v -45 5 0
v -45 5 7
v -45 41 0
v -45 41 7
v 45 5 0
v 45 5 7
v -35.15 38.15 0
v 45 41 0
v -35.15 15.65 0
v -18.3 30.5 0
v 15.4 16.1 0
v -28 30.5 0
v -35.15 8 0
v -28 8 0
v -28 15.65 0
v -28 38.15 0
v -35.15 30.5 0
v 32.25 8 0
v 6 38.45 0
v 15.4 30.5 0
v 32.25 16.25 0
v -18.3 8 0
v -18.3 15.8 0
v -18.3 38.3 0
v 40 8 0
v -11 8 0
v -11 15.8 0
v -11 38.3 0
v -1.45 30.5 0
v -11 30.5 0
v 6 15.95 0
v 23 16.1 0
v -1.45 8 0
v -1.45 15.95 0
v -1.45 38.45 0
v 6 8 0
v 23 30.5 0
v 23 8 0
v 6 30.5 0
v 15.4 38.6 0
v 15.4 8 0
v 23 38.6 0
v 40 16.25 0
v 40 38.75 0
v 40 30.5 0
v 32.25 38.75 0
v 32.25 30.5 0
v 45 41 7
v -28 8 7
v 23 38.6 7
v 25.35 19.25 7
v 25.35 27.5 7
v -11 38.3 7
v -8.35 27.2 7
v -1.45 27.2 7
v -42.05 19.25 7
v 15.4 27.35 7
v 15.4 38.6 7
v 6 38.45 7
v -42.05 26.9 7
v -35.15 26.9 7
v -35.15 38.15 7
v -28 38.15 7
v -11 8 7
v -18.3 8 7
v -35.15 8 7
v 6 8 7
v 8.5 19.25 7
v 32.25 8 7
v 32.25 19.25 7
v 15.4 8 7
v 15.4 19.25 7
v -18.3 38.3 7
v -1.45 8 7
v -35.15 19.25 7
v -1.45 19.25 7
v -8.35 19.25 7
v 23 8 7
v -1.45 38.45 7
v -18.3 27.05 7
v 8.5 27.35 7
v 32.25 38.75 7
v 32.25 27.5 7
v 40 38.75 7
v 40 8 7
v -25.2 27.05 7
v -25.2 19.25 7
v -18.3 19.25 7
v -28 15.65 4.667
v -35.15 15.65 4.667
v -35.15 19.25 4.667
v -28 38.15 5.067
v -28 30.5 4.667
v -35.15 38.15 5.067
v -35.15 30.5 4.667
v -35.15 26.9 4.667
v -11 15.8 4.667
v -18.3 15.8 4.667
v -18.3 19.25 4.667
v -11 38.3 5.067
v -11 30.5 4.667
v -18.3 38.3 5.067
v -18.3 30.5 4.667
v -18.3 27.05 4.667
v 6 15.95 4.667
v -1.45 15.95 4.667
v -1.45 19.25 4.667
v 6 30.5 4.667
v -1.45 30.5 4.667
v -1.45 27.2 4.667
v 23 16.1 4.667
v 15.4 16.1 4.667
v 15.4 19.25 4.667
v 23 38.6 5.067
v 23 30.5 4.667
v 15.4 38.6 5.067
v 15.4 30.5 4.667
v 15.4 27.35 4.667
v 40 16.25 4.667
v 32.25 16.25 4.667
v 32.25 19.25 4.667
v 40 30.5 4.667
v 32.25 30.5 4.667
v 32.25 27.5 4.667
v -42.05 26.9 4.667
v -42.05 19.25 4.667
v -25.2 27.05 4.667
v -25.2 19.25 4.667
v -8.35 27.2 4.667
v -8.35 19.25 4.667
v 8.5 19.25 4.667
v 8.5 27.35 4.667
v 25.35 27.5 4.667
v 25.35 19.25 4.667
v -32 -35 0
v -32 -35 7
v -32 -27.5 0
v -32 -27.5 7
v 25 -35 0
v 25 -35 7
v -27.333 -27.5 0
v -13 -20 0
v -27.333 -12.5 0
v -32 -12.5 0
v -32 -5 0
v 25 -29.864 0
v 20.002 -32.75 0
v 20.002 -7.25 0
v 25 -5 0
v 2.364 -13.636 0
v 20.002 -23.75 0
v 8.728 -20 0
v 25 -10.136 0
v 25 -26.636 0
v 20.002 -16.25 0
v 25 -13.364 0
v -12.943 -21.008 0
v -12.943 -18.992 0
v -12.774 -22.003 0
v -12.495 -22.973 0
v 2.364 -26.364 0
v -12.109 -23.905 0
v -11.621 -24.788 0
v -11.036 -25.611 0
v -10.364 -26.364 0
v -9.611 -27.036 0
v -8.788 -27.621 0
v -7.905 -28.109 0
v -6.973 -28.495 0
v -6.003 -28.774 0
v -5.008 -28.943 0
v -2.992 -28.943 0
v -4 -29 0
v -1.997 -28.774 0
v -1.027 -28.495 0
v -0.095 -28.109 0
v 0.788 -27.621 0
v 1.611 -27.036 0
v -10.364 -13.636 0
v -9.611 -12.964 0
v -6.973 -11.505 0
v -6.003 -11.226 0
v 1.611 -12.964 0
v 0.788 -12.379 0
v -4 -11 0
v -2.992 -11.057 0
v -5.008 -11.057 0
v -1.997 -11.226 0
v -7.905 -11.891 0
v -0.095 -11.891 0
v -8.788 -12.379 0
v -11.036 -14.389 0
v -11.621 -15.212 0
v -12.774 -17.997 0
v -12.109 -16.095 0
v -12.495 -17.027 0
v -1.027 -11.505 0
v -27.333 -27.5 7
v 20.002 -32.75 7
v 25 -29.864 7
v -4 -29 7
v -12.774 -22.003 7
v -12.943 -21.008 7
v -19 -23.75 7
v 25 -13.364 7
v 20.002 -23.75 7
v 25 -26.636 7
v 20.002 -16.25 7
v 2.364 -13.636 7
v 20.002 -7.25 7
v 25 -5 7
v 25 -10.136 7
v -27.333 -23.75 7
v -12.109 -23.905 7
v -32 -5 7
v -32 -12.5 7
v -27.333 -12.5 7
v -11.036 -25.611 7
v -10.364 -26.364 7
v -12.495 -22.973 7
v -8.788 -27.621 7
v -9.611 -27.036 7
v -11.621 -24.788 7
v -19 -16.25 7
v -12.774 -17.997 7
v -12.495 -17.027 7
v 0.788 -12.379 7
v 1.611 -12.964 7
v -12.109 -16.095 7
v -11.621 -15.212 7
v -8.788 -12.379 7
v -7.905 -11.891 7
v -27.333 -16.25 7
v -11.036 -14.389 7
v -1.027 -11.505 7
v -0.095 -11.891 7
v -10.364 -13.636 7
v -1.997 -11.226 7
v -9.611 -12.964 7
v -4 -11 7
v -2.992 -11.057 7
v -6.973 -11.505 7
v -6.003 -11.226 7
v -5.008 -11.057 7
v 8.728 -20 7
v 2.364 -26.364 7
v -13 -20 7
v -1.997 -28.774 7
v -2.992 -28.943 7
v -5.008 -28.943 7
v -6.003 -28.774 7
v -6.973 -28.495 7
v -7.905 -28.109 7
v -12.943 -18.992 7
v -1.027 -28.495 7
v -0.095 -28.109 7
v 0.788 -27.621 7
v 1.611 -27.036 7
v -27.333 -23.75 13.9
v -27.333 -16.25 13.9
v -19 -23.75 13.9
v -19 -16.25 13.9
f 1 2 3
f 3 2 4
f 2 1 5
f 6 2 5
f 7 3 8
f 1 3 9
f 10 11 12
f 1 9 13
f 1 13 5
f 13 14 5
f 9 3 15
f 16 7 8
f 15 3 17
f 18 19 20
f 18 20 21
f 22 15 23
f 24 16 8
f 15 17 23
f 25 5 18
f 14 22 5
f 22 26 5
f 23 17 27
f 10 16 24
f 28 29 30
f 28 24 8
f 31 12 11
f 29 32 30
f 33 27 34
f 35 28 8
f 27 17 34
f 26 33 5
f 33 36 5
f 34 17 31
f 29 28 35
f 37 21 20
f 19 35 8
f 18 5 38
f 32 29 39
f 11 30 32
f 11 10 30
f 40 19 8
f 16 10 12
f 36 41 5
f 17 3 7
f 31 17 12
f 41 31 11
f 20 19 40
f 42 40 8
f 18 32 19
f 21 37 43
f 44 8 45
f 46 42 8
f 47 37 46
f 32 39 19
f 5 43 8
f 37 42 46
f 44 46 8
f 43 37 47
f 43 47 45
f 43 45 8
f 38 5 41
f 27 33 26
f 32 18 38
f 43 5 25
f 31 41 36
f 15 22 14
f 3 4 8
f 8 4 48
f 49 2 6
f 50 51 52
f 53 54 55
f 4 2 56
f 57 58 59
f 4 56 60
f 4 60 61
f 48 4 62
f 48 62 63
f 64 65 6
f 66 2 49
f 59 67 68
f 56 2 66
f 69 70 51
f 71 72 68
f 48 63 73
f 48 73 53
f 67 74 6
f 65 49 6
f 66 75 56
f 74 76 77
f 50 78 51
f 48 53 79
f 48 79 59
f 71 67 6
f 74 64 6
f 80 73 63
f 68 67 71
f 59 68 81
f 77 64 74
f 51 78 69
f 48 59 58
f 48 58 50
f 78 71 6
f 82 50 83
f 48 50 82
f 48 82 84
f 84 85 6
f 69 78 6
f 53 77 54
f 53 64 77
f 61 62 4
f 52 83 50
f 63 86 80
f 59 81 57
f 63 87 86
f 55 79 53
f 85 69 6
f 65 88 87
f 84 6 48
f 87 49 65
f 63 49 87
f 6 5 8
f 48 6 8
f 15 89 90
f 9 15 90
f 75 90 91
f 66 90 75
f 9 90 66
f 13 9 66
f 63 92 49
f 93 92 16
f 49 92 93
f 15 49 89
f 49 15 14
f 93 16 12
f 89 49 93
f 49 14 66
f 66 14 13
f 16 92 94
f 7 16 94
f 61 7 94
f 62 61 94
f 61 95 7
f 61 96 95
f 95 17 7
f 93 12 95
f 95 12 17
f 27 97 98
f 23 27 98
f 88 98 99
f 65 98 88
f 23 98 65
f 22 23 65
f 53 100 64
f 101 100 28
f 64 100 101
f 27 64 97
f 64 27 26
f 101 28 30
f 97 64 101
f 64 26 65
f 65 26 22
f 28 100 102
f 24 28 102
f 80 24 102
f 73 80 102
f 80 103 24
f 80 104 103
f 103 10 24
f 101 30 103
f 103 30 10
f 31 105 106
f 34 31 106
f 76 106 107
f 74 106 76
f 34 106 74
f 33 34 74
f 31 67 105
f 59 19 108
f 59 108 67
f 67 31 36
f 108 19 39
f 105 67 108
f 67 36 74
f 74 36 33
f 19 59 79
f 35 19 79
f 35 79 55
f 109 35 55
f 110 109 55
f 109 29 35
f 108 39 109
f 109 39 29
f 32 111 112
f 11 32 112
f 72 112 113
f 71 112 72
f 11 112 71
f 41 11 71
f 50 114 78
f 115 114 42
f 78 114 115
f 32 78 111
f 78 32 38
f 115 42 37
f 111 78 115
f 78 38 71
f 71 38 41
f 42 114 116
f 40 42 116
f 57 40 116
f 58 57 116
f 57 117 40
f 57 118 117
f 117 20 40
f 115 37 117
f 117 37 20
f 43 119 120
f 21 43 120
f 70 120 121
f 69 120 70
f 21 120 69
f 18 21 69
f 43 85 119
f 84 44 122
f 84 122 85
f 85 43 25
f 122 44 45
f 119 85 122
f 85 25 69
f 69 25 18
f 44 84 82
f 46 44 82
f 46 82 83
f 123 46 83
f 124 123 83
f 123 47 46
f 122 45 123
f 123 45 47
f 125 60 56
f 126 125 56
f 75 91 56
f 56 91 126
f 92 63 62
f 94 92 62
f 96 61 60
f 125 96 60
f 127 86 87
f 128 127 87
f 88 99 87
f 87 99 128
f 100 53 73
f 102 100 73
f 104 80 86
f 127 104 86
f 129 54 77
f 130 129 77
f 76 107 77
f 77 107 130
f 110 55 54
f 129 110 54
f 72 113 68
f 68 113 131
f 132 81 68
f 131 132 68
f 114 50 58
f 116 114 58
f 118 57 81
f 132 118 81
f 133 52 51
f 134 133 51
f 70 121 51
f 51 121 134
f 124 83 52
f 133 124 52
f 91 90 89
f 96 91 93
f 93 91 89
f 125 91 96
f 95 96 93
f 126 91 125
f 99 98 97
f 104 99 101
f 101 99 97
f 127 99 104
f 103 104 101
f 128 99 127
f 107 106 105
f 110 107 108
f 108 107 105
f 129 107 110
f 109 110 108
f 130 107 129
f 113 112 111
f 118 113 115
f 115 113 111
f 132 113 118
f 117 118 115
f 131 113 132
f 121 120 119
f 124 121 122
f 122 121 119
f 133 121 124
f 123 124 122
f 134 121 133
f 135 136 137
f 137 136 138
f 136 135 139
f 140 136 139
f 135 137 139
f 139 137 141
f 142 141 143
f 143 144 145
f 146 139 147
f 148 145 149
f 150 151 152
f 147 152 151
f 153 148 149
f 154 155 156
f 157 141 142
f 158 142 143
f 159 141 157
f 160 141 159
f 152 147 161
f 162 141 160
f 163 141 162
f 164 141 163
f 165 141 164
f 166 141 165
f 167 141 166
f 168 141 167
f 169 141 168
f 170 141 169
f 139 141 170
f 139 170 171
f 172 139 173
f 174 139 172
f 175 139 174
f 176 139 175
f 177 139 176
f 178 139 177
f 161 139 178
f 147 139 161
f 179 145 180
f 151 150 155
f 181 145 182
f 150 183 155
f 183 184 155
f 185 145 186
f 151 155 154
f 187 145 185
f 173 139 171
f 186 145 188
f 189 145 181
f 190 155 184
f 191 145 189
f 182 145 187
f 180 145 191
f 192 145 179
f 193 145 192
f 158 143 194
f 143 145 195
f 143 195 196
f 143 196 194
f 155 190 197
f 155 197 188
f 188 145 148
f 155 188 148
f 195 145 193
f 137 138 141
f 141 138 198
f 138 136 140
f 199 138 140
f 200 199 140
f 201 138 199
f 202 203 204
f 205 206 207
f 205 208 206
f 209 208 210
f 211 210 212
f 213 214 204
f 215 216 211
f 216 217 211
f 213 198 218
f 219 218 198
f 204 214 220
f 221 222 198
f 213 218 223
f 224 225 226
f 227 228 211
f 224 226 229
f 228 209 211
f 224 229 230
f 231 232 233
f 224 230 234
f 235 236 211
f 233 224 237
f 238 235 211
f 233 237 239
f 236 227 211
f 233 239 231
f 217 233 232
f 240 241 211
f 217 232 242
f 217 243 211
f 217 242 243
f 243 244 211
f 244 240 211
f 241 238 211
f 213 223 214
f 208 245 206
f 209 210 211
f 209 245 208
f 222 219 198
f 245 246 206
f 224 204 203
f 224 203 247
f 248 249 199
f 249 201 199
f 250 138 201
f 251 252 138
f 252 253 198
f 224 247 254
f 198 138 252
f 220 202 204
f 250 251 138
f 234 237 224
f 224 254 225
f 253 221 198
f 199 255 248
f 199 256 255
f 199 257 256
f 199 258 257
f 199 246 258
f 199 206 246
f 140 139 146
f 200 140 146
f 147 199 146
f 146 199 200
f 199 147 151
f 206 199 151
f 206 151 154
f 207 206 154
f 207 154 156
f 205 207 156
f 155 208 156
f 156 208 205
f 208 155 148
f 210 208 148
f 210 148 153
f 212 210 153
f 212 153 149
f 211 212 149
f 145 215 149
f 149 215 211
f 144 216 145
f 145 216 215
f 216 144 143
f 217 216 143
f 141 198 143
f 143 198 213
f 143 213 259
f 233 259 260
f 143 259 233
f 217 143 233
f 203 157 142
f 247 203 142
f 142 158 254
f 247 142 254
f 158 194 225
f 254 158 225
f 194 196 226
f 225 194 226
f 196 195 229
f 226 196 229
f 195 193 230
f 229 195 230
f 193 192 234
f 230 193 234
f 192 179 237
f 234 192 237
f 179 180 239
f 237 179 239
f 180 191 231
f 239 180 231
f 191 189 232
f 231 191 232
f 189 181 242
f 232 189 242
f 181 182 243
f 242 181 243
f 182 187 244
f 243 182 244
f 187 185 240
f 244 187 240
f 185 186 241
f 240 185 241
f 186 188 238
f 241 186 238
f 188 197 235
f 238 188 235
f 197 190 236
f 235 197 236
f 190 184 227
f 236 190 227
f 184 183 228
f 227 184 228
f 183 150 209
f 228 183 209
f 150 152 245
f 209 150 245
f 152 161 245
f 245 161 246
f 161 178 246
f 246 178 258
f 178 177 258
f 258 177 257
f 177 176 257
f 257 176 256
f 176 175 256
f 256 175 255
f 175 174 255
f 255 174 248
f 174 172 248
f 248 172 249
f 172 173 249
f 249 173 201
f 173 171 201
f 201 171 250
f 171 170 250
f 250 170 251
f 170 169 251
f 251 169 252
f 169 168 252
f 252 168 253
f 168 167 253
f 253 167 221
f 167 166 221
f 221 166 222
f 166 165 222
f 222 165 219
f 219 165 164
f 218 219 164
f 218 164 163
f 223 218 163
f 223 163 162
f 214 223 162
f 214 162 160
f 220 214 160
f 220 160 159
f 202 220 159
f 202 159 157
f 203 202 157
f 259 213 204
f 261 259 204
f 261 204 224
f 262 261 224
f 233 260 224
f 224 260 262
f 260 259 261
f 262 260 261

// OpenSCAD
// file: mcad/triangles.scad
/**
 * Simple triangles library
 *
 * Authors:
 *   - Eero 'rambo' af Heurlin 2010-
 *
 * License: LGPL 2.1
 */


/**
 * Standard right-angled triangle
 *
 * @param number o_len Lenght of the opposite side
 * @param number a_len Lenght of the adjacent side
 * @param number depth How wide/deep the triangle is in the 3rd dimension
 * @todo a better way ?
 */
module triangle(o_len, a_len, depth)
{
    linear_extrude(height=depth)
    {
        polygon(points=[[0,0],[a_len,0],[0,o_len]], paths=[[0,1,2]]);
    }
}

/**
 * Standard right-angled triangle (tangent version)
 *
 * @param number angle of adjacent to hypotenuse (ie tangent)
 * @param number a_len Lenght of the adjacent side
 * @param number depth How wide/deep the triangle is in the 3rd dimension
 */
module a_triangle(tan_angle, a_len, depth)
{
    linear_extrude(height=depth)
    {
        polygon(points=[[0,0],[a_len,0],[0,tan(tan_angle) * a_len]], paths=[[0,1,2]]);
    }
}

// Tests:
module test_triangle() { triangle(5, 5, 5); }
module test_a_triangle() { a_triangle(45, 5, 5); }
module test_triangles()
{
    // Generate a bunch of triangles by sizes
    for (i = [1:10])
    {
        translate([i*7, -30, i*7])
        {
            triangle(i*5, sqrt(i*5+pow(i,2)), 5);
        }
    }

    // Generate a bunch of triangles by angle
    for (i = [1:85/5])
    {
        translate([i*7, 22, i*7])
        {
            a_triangle(i*5, 10, 5);
        }
    }
}
// file: mcad/units.scad
/*
 * Basic units.
 *
 * Originally by Hans Häggström, 2010.
 * Dual licenced under Creative Commons Attribution-Share Alike 3.0 and LGPL2 or later
 */


mm = 1;
cm = 10 * mm;
dm = 100 * mm;
m = 1000 * mm;

inch = 25.4 * mm;

X = [1, 0, 0];
Y = [0, 1, 0];
Z = [0, 0, 1];

M3 = 3*mm;
M4 = 4*mm;
M5 = 5*mm;
M6 = 6*mm;
M8 = 8*mm;


// When a small distance is needed to overlap shapes for boolean cutting, etc.
epsilon = 0.01*mm;

phi=0.5*(sqrt(5) + 1 );
// file: strut_dummies.scad
use <Libs.scad>
include <ss_parms.scad>

peg_width = bs_width / 4;

bs_dummy();

module es_dummy(){
	union(){
		cube([es_length, es_width, es_height + 0.05]);
		translate([es_length, es_width - 6.75, es_height/2])
			dovetail(male = false, height = es_height + 0.05);
	}
}

module bs_dummy(tol = bv_tolerance){
	union(){
		// body
		translate([-bs_sink, 0, 0]) 
			cube(size=[bs_length + bs_sink, bs_width+tol, bs_height+tol]);
		// mounting pegs
		translate([-bv_width-0.1, 0, 0]) 
			cube(size=[bv_width - bs_sink +0.5, peg_width+tol, bs_height+tol]);
		translate([-bv_width-0.1, bs_width - peg_width , 0]) 
			cube(size=[bv_width - bs_sink + 0.5, peg_width+tol, bs_height+tol]);
		// support cube
		translate([-bs_sink, (bs_width-peg_width)  / 2, bs_height- 0.1])
			cube(size=[bs_sink + 0.5 * bs_td_space, peg_width+tol, bs_height+tol]);
	}
}
// file: base_strut.scad
include <Libs.scad>
include <ss_parms.scad>
use <mcad/triangles.scad>

libEcho=false;

peg_width = bs_width / 4;

module base_strut(){
	difference(){
		union(){
			// body
			translate([-bs_sink, 0, 0]) 
				cube(size=[bs_length + bs_sink, bs_width, bs_height]);
			// mounting pegs
			translate([-1 * bv_width, 0, 0]) 
				cube(size=[bv_width - bs_sink +0.1, peg_width, bs_height]);
			translate([-1 * bv_width, bs_width - peg_width , 0]) 
				cube(size=[bv_width - bs_sink + 0.1, peg_width, bs_height]);
			// support cube
			translate([-bs_sink, (bs_width-peg_width)  / 2, bs_height- 0.1])
				cube(size=[bs_sink + 0.5 * bs_td_space, peg_width, bs_height]);

		}
		// female dovetails
		translate([bs_length, 6.75, bs_height/2]) mirror([1,0,0]) 
			dovetail(male = false, height = 1.1* bs_height);
		translate([bs_length,  bs_width - 6.75, bs_height/2]) mirror([1,0,0]) 
			dovetail(male = false, height = 1.1* bs_height);
		// teardrop hole
		if (bs_teardrops) {
			for ( i = [0 : bs_num_td - 1 ]) {
				translate([bs_td_space + bs_td_radius +  i * (2.5 * bs_td_radius + bs_td_space),  bs_width / 2, bs_height/2])
				 rotate(righty(90))
					 teardrop(radius=bs_td_radius,  length = 1.1* bs_height, angle=90);	
			}
		}
	}
}

base_strut();
// file: ss_parms.scad
/*
 * Parameters for SugarSnap RepRap 
 *  Copyright (C) 2011  Adam Milner
 *
 *  This program is free software; you can redistribute it and/or modify
 *  it under the terms of the GNU General Public License as published by
 *  the Free Software Foundation; either version 2 of the License, or
 *  (at your option) any later version.
 *
 *  This program is distributed in the hope that it will be useful,
 *  but WITHOUT ANY WARRANTY; without even the implied warranty of
 *  MERCHANTABILITY or FITNESS FOR A PARTICULAR PURPOSE.  See the
 *  GNU General Public License for more details.
 *
 *  You should have received a copy of the GNU General Public License
 *  along with this program; if not, write to the Free Software
 *  Foundation, Inc., 59 Temple Place, Suite 330, Boston, MA  02111-1307  USA
 *
*/

include <mcad/units.scad>

/*** End Struts ***/
es_length = 80; // strut body length
es_width = 30;	// strut body width
es_height = 7; // strut body thickness
es_teardrops = true; // include teardrop holes
es_td_radius = 9; // teardrop hole radius
es_num_td = 2;	// number of teardrops
es_td_space = 12; // space between teardrops 

/*** Base Struts ***/
bs_length = 50; // strut body length
bs_width = 30;	// strut body width
bs_height = 7; // strut body thickness
bs_teardrops = true; // include teardrop holes
bs_td_radius = 9; // teardrop hole radius
bs_num_td = 1;	// number of teardrops
bs_td_space = 12; // space between teardrops 

/*** Y Rod Support Struts ***/
ys_length = 30; // strut body length
ys_width = bs_width;	// strut body width
ys_height = bs_height; // strut body thickness
ys_foot = true;	// use a foot on the y rod support
ys_foot_width = 8;	// foot width
ys_rod_diameter = (3/8) * inch + 0.05; // outer diameter of the y-rod, plus some shrinkage
ys_rod_wall = 3;
ys_rod_length = 15;

/*** Y Motor Strut Struts ***/
ym_length = 100; // strut body length
ym_width = bs_width;	// strut body width
ym_height = bs_height ; // strut body thickness

/*** Bottom Vertex ***/
bv_width = es_height; // vertex thickness
bv_radius = 31; // radius of the vertex
bs_sink = es_height/3; // how far to countersink the y supporting base struts into the vertex
bs_outset = 10; // outset of the y supporting base struts from the center of the vertex
bv_tolerance = 0.45; // shrinkage tolerence for the strut slots

/*** Top Vertex ***/
tv_rod_diameter = ys_rod_diameter; // outer diameter of the x-rod, plus some shrinkage
tv_rod_wall = ys_rod_wall;
tv_rod_length = ys_rod_length;
tv_rod_spacing = 35; // space between the inside edges of the x-rods
tv_rod_lift = 0; // center of x rods above center of vertex semi-circle
tv_top_height = tv_rod_diameter/2 + tv_rod_wall + tv_rod_lift + 5; // vertex body height above bottom half circle
tv_rod_sink = 5;

/*** X Motor Mount ***/
x_dt_space = 20; // spacing between the X motor mount dovetails
// main file
use <Libs.scad>
include <ss_parms.scad>
use <base_strut.scad>
use <strut_dummies.scad>
libEcho = false;

translate([-45,5,0])
	bv_test();
translate([-bs_length/2, -bs_width-5, 0])
	base_strut();

preview = false;

if (preview) 
	ShowPegGrid(1.0);
	
module ShowPegGrid(Size) {
 
 for (x=[-5:5])
  for (y=[-5:5])
   translate([x*10,y*10,Size/2])
    cube(Size,center=true);
 
}

module bv_test(tol = 0.5){
	union(){
		difference(){
			//main body
			cube(size=[90, bs_width + 6, bs_height]);
			// base strut mounting tests
			for ( i = [0 : 4 ]) {
				translate([(i+1) * (bv_width * 2 + 3), 3, bv_width]) 
					rotate(a = [0,-90,0])
						bs_dummy(tol = 0.15 * (i + 1));
			}
		}
	}
}
